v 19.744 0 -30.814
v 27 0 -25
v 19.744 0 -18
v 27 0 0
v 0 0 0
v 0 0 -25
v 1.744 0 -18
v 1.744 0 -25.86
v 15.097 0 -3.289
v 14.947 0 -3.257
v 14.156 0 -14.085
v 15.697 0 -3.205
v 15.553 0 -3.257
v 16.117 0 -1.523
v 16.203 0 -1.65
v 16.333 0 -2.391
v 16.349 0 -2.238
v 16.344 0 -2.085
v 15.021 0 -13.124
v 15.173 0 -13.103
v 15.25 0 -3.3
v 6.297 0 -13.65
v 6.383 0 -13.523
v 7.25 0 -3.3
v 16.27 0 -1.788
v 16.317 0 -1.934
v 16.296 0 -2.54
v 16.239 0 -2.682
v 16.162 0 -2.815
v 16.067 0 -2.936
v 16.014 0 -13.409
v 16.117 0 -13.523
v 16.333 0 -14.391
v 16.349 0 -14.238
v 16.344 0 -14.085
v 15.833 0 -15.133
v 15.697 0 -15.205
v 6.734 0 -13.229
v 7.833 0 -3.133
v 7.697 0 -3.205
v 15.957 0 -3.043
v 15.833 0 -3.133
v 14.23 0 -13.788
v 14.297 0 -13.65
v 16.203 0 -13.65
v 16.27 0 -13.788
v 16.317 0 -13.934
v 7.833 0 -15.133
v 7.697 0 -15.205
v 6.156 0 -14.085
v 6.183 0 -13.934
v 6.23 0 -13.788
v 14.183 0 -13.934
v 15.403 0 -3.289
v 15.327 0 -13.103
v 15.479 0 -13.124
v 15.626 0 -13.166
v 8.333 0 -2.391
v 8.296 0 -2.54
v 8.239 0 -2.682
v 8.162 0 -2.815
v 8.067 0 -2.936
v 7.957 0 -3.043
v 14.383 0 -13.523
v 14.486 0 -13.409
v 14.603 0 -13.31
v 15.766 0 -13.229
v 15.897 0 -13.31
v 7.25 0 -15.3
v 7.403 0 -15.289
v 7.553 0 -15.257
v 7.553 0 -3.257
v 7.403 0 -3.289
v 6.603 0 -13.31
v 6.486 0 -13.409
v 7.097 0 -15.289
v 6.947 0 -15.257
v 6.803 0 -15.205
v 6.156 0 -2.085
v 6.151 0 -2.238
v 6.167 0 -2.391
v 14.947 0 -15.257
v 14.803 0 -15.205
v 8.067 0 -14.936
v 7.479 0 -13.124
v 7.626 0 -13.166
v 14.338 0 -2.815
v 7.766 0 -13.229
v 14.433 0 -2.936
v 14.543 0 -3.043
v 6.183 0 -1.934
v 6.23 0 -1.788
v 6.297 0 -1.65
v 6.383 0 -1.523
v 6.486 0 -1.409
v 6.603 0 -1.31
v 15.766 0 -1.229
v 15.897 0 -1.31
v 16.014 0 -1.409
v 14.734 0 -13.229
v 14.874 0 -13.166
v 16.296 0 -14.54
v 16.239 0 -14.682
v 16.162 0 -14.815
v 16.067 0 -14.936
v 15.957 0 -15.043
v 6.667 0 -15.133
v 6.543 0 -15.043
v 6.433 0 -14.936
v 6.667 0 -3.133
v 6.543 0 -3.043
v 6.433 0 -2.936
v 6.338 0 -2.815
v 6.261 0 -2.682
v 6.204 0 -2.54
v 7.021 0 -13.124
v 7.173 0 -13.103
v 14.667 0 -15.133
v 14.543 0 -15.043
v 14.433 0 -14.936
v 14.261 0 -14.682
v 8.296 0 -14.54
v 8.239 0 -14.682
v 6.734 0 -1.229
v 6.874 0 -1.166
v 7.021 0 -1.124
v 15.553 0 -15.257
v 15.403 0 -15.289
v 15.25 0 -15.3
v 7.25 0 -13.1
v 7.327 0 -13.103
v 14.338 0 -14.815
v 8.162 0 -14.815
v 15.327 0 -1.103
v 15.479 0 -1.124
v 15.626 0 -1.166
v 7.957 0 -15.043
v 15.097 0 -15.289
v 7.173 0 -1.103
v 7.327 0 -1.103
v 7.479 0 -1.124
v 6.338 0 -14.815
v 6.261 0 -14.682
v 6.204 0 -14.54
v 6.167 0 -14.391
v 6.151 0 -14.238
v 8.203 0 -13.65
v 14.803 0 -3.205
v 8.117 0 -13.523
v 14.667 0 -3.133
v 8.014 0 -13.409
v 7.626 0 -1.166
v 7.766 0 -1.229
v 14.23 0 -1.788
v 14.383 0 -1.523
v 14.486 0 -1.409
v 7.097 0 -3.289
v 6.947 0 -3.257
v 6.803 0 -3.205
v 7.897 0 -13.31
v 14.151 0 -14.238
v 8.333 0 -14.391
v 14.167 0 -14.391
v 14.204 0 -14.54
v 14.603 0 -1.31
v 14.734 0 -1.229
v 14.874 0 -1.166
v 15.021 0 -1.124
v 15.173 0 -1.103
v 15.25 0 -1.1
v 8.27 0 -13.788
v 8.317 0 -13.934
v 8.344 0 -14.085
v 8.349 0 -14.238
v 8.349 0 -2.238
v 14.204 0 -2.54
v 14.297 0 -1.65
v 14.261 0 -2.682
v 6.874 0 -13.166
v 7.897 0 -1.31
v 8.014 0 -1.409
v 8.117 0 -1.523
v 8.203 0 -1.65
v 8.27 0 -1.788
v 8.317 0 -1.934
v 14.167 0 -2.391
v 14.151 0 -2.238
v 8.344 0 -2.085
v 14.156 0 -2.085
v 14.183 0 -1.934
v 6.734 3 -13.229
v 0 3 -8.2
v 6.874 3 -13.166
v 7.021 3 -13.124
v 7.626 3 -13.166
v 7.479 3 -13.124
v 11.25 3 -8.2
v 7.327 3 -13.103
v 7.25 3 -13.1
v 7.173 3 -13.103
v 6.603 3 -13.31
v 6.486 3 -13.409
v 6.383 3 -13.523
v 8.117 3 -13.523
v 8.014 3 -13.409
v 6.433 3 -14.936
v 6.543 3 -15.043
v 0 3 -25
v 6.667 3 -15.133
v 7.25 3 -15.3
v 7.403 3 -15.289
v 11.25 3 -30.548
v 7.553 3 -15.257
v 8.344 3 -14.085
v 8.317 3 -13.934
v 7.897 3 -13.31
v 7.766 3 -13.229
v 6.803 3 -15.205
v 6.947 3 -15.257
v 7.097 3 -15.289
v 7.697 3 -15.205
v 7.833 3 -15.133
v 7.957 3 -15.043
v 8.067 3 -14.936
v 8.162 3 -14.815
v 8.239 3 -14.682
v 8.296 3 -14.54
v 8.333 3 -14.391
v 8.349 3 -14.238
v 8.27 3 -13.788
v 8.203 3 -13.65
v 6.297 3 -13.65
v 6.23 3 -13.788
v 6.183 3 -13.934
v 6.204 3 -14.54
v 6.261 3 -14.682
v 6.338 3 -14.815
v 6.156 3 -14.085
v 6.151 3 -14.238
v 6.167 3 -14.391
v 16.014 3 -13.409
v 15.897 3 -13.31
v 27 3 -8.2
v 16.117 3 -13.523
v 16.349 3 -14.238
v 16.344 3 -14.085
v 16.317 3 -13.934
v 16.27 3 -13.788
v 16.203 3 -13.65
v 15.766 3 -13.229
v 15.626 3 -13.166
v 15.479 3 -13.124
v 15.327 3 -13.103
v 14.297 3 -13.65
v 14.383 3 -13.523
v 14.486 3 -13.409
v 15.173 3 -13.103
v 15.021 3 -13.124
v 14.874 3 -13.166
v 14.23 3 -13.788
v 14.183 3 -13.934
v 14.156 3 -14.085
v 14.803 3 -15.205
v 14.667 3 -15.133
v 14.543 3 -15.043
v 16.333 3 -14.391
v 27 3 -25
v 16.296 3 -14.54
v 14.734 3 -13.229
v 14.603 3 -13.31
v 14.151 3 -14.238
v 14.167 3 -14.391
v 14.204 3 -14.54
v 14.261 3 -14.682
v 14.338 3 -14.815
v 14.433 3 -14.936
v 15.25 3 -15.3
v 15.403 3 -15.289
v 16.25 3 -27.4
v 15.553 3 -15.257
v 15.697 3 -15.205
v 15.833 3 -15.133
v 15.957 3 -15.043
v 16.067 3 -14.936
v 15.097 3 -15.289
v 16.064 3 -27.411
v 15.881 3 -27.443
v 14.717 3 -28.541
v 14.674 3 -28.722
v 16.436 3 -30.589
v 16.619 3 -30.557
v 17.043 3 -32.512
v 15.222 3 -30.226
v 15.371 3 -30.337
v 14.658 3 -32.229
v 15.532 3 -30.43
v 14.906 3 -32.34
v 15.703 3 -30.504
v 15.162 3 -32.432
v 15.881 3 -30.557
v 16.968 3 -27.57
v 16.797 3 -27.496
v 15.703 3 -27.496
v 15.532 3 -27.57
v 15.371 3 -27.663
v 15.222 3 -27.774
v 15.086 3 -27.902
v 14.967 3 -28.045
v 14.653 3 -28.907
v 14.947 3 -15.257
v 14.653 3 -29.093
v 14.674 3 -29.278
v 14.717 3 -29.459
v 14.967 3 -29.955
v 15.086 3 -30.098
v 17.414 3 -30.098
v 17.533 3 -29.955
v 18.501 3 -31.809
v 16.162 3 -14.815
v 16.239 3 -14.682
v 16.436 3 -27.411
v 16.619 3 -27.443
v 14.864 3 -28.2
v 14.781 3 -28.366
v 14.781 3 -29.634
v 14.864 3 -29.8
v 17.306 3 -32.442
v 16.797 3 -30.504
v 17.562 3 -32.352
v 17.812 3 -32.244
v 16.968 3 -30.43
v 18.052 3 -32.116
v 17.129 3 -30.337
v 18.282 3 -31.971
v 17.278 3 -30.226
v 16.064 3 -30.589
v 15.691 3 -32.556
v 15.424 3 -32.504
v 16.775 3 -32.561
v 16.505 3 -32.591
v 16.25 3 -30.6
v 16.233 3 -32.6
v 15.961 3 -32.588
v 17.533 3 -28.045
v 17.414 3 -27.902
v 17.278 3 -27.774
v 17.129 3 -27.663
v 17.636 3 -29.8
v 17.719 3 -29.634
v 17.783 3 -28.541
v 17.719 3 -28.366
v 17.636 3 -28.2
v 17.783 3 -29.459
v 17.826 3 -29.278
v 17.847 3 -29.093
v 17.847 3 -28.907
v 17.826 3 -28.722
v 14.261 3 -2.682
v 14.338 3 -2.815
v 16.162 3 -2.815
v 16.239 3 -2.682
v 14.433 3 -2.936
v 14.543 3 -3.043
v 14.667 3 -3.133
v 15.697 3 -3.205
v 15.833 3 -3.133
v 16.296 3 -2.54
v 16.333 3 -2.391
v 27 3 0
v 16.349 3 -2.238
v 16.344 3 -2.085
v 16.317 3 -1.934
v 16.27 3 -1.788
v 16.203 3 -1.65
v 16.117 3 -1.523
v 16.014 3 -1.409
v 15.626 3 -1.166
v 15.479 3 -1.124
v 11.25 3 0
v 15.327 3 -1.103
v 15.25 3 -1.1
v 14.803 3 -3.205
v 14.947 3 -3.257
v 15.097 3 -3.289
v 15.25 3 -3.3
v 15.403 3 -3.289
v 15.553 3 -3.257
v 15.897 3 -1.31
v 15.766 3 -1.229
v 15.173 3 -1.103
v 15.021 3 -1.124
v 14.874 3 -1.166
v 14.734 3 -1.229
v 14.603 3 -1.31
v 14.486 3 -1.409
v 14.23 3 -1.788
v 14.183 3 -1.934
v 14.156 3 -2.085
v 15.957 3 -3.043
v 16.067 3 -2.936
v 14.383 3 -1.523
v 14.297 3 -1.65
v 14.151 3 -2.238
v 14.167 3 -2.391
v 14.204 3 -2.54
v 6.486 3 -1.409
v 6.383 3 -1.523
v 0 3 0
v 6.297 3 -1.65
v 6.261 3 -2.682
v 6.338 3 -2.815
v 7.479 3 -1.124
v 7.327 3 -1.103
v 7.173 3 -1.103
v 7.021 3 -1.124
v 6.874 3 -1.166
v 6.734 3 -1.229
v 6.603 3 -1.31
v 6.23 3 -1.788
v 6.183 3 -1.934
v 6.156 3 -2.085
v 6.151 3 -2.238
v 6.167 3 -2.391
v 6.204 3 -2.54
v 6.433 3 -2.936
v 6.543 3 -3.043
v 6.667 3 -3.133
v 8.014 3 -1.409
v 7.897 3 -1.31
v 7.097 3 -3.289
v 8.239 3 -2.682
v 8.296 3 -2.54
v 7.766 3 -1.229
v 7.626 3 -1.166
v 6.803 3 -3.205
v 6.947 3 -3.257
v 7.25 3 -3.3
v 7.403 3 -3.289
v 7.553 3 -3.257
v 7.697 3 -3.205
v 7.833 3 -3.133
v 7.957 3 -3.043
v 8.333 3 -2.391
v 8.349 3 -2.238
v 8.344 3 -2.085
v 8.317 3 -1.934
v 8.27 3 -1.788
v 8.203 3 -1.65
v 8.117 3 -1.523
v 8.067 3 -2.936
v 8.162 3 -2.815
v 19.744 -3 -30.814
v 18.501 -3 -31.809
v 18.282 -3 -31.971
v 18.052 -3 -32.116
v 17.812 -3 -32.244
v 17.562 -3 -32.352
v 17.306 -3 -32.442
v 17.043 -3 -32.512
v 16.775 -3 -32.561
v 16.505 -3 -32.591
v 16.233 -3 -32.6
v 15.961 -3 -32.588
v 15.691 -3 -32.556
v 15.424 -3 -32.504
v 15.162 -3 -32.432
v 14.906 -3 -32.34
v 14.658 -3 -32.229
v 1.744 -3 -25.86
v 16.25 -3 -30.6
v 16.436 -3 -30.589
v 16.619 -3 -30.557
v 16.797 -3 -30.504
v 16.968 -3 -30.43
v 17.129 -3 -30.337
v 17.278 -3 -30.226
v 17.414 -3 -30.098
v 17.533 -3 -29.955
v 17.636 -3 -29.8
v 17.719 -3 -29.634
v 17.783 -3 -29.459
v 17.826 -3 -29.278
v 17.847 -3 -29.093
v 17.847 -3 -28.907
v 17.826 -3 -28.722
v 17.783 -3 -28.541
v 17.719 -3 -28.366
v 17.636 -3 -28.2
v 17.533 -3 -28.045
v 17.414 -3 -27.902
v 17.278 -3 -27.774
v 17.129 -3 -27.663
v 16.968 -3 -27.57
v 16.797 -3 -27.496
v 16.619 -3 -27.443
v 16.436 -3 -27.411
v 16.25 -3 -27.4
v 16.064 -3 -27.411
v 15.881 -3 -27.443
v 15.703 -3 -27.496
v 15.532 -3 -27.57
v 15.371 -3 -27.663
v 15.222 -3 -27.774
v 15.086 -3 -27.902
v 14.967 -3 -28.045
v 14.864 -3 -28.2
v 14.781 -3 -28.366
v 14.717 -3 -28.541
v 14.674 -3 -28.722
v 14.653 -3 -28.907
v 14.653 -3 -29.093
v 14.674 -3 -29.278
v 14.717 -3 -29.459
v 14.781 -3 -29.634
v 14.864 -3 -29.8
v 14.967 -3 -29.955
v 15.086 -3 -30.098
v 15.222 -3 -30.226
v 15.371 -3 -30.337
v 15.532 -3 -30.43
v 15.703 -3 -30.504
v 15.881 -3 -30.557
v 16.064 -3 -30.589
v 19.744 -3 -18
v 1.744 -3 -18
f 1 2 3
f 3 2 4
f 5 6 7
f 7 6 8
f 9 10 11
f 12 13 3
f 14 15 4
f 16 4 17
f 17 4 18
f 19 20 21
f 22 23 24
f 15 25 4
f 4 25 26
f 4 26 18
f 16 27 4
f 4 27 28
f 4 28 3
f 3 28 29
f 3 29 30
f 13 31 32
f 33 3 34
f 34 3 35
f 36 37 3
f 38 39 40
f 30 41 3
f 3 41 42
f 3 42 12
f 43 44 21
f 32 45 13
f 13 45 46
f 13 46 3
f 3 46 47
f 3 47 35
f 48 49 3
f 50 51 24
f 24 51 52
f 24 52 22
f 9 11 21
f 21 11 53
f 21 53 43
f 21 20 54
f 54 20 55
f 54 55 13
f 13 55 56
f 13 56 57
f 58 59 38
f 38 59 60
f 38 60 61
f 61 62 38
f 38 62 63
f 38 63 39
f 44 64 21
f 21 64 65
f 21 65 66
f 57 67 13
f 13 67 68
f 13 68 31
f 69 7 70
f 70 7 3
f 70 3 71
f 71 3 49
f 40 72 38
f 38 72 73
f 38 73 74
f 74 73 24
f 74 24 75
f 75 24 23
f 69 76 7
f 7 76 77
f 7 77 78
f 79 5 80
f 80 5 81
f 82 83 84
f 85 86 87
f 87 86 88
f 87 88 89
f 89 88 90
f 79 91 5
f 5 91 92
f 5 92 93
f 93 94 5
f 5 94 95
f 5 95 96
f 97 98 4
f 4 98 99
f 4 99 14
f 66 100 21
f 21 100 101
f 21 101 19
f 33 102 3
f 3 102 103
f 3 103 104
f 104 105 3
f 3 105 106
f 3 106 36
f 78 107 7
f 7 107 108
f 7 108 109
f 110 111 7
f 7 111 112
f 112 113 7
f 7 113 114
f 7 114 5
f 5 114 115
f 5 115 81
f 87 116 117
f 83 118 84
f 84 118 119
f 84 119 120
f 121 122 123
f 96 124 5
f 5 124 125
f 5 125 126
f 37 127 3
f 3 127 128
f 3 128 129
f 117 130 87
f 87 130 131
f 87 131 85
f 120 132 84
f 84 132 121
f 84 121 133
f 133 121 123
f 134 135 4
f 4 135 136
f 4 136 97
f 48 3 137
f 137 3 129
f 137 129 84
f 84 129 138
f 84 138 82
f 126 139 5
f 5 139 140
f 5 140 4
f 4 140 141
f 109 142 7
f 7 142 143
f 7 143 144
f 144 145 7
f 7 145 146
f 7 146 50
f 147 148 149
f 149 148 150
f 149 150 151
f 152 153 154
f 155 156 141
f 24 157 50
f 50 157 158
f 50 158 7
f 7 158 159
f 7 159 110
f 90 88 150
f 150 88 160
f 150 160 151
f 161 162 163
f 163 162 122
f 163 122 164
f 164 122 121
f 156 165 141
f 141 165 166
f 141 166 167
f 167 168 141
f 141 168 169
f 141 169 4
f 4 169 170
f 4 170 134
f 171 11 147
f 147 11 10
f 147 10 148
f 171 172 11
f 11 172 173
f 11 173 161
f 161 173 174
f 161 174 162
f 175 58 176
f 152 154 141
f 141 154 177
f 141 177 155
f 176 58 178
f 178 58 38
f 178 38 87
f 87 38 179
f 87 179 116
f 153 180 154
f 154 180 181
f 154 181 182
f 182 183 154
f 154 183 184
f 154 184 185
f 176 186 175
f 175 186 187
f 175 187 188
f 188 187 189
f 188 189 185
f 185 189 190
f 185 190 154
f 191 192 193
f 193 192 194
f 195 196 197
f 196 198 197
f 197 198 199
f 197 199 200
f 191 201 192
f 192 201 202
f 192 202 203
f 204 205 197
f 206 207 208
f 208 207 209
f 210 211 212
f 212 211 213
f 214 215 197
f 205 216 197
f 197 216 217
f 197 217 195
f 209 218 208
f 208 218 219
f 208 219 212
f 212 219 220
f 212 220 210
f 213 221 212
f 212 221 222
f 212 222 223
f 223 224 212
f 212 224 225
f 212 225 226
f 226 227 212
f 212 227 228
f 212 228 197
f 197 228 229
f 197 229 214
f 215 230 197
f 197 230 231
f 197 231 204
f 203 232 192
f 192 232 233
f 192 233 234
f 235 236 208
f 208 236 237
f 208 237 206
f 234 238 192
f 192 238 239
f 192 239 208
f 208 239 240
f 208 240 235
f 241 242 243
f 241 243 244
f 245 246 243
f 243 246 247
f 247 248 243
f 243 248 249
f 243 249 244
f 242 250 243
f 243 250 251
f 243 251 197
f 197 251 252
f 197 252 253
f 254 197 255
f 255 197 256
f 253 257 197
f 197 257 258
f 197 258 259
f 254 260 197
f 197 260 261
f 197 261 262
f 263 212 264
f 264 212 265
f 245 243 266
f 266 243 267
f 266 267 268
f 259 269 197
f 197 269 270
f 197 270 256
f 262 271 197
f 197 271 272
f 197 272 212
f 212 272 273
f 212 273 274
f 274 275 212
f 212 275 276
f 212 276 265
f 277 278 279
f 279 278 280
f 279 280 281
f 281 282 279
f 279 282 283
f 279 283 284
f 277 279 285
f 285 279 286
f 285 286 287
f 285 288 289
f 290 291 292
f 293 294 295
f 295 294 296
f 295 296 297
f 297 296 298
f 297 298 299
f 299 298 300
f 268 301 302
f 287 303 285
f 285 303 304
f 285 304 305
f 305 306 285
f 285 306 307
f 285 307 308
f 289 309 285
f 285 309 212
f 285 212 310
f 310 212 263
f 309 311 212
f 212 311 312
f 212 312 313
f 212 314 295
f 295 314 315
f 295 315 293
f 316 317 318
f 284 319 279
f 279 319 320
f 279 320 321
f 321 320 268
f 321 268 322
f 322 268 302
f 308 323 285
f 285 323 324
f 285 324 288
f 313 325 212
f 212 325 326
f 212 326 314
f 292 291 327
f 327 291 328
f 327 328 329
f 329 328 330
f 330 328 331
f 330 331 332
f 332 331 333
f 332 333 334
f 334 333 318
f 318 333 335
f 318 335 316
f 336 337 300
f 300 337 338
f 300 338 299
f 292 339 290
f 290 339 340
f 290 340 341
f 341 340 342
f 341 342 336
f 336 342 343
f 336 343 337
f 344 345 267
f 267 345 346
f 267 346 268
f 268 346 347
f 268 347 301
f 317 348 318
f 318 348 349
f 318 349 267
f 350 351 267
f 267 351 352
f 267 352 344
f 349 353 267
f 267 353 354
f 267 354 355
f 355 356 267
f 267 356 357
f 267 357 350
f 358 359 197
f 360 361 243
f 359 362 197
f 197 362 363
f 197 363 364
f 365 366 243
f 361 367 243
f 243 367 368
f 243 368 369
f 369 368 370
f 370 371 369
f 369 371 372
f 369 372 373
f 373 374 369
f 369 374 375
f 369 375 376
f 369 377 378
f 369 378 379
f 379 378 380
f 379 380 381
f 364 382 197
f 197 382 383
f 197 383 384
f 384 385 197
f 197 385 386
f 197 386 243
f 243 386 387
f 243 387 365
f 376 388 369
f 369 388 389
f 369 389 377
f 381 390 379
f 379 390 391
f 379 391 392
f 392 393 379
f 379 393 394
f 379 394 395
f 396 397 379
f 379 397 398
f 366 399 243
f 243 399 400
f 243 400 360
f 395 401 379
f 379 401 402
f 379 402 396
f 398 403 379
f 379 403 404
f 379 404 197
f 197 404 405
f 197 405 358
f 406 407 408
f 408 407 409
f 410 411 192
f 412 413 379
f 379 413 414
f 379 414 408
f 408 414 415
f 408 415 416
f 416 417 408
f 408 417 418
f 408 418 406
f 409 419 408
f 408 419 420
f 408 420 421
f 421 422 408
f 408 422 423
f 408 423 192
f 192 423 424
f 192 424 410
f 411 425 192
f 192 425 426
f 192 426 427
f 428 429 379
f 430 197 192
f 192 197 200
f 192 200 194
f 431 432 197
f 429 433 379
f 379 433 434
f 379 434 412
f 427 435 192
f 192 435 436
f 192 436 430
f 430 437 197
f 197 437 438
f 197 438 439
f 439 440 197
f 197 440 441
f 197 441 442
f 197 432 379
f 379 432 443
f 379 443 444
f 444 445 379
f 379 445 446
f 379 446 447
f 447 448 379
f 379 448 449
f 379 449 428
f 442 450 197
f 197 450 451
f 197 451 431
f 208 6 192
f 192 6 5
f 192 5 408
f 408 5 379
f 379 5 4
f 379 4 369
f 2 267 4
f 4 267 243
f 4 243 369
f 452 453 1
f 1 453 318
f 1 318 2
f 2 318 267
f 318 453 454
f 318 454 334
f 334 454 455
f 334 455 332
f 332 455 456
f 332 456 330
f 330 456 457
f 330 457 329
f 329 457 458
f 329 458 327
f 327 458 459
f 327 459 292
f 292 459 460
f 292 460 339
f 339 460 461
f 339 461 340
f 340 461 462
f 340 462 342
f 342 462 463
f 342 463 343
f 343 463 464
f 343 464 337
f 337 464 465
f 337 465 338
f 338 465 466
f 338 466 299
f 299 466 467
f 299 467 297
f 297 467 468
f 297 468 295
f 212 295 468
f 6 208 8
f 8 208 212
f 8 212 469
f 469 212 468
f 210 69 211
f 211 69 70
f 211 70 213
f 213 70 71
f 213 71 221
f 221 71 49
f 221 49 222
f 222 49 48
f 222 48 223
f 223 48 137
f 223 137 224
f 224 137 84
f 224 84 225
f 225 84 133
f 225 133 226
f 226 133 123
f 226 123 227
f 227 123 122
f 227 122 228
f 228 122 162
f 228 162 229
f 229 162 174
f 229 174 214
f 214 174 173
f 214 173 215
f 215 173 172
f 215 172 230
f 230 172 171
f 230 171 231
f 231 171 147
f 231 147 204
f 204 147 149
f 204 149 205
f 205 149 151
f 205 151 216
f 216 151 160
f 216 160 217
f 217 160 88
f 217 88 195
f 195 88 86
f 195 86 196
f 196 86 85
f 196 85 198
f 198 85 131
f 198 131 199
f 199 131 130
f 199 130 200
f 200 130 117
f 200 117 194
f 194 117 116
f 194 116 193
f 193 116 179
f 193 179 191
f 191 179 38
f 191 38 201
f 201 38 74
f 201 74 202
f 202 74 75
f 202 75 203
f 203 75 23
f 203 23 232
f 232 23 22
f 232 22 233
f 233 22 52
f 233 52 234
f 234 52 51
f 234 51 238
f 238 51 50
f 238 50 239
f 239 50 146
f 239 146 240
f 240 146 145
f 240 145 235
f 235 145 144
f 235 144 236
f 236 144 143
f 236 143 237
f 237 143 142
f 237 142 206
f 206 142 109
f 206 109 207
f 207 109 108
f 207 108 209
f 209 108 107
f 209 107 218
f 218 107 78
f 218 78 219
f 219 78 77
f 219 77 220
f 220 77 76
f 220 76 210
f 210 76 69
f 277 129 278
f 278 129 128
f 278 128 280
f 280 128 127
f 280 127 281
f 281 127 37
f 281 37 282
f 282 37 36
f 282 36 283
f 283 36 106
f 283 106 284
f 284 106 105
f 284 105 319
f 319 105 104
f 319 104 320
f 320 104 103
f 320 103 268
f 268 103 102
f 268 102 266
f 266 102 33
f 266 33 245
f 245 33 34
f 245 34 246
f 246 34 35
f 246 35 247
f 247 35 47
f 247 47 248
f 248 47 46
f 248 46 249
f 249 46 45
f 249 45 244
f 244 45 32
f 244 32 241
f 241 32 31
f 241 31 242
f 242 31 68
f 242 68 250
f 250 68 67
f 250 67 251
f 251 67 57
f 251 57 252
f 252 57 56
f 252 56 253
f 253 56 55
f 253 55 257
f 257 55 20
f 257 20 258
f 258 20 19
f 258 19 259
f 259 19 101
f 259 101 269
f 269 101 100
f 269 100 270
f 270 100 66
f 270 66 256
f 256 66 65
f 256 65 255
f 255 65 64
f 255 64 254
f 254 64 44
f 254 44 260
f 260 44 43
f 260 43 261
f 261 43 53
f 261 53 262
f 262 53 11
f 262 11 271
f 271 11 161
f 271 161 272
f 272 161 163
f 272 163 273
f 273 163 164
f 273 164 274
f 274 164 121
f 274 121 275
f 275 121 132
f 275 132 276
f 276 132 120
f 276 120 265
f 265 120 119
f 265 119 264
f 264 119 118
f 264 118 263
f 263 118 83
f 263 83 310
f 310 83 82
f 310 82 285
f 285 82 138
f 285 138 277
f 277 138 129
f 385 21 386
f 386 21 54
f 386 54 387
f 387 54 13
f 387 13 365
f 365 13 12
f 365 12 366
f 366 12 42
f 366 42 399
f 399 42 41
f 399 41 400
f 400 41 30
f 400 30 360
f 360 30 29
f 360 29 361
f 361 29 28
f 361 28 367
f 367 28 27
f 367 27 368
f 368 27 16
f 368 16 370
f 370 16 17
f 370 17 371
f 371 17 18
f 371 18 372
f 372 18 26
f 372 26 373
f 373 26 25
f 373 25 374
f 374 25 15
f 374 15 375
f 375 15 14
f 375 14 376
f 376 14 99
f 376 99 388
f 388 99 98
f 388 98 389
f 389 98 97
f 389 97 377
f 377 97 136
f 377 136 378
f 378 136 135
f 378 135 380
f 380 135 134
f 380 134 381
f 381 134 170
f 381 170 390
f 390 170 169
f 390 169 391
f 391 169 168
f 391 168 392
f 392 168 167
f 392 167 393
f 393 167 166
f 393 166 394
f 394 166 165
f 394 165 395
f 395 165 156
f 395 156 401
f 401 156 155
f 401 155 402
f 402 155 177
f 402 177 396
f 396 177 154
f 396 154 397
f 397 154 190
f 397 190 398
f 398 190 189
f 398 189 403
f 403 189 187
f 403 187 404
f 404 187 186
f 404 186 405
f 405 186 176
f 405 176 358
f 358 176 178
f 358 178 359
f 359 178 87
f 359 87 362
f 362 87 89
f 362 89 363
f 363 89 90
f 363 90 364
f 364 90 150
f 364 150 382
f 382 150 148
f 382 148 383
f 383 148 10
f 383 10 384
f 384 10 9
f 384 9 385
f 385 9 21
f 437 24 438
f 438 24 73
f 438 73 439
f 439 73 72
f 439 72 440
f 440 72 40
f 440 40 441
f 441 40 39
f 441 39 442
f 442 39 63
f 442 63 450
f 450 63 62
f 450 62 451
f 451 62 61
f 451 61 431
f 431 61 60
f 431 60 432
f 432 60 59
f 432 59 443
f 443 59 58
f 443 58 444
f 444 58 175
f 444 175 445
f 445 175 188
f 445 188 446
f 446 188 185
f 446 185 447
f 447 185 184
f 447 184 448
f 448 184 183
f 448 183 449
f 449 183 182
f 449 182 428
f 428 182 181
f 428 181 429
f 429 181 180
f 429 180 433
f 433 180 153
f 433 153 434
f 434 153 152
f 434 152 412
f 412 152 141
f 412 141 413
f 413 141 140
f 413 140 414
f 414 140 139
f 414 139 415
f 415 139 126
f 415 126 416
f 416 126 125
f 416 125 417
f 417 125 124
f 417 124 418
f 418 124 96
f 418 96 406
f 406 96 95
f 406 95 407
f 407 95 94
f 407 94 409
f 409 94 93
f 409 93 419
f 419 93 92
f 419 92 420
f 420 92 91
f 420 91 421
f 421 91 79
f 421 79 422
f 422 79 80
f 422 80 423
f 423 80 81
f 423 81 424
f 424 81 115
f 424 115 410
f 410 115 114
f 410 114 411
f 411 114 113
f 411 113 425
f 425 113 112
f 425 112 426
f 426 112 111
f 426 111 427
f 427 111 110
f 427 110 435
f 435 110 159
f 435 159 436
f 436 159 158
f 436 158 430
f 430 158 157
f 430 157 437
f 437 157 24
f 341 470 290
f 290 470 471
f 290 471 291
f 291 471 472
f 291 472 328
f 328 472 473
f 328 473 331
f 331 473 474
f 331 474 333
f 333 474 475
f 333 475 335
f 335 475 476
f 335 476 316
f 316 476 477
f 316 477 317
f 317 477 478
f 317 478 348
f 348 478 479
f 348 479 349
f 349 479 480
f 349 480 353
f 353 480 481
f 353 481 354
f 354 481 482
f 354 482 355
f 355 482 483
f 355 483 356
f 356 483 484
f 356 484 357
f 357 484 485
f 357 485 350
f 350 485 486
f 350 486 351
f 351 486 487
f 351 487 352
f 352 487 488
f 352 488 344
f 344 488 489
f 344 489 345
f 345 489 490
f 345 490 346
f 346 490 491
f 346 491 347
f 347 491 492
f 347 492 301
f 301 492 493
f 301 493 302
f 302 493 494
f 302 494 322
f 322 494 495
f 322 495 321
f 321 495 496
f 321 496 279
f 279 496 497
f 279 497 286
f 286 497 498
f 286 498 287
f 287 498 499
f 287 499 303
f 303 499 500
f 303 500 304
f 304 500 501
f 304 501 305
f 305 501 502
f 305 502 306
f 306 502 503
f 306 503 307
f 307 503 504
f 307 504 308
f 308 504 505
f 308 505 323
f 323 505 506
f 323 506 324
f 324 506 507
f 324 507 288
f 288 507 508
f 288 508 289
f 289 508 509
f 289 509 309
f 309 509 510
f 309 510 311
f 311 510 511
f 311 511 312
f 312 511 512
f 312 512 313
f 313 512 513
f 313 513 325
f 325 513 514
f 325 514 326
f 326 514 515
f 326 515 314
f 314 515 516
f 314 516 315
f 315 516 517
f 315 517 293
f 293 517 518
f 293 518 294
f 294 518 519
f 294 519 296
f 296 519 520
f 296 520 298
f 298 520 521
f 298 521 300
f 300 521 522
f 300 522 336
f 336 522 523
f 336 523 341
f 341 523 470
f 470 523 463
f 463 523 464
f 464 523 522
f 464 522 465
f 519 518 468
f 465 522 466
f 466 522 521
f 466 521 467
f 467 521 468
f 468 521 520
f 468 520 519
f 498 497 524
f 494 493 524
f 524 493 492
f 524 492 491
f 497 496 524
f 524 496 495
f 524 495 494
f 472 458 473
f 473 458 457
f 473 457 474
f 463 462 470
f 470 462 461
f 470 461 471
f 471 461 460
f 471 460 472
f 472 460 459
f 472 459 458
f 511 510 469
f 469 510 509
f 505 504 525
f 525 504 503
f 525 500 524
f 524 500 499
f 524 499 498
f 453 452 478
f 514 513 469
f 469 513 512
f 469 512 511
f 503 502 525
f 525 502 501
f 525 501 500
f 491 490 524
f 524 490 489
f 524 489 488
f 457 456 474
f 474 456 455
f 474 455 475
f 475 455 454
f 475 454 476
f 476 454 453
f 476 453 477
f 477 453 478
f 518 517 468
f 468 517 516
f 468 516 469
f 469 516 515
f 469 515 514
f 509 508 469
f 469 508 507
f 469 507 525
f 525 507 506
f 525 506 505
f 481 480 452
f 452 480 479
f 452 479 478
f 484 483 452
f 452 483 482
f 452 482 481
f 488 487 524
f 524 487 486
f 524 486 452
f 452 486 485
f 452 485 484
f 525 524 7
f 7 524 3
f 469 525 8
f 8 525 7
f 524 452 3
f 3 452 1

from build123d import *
from build123d.topology import SkipClean

# Parameters (mm, degrees)
SKETCH_2_R      = 1.1
SKETCH_2_R_2    = 1.6
EXTRUDE_1_DEPTH = 3
EXTRUDE_START   = 3
SKETCH_3_R      = 1.6
EXTRUDE_2_DEPTH = 3


with BuildPart() as part:
    # 草图2 → 凸台-拉伸1 (new body)
    with BuildSketch(Plane(origin=(0, 0, 0), x_dir=(1, 0, 0), z_dir=(0, 1, 0))):
        with BuildLine():
            Line((0, 0), (27, 0))
            Line((27, 0), (27, 25))
            Line((27, 25), (18.500967228, 31.809474424))
            ThreePointArc((18.500967228, 31.809474424), (16.640386089, 32.578770557), (14.657701498, 32.228712666))
            Line((14.657701498, 32.228712666), (0, 25))
            Line((0, 25), (0, 0))
        make_face()
        with Locations(Location((7.25, 14.2, 0), (0, 0, 270))):
            Circle(SKETCH_2_R, mode=Mode.SUBTRACT)
        with Locations(Location((15.25, 14.2, 0), (0, 0, 90))):
            Circle(SKETCH_2_R, mode=Mode.SUBTRACT)
        with Locations(Location((15.25, 2.2, 0), (0, 0, 270))):
            Circle(SKETCH_2_R, mode=Mode.SUBTRACT)
        with Locations(Location((7.25, 2.2, 0), (0, 0, 90))):
            Circle(SKETCH_2_R, mode=Mode.SUBTRACT)
        with Locations(Location((16.25, 29, 0), (0, 0, 270))):
            Circle(SKETCH_2_R_2, mode=Mode.SUBTRACT)
    extrude(amount=EXTRUDE_1_DEPTH)

    # 草图3 → 凸台-拉伸2 (add)
    with SkipClean():  # the faces are left unmerged after this step: merging them gives an invalid solid
        with BuildSketch(Plane.XZ.offset(EXTRUDE_START)):
            with BuildLine():
                Line((19.744057368, -30.813503383), (18.500967228, -31.809474424))
                ThreePointArc((18.500967228, -31.809474424), (16.640386089, -32.578770557), (14.657701498, -32.228712666))
                Line((14.657701498, -32.228712666), (1.744057368, -25.860113681))
                Line((1.744057368, -25.860113681), (1.744057368, -18))
                Line((1.744057368, -18), (19.744057368, -18))
                Line((19.744057368, -18), (19.744057368, -30.813503383))
            make_face()
            with Locations(Location((16.25, -29, 0), (0, 0, 270))):
                Circle(SKETCH_3_R, mode=Mode.SUBTRACT)
        extrude(amount=-EXTRUDE_2_DEPTH)


solid = part.part
